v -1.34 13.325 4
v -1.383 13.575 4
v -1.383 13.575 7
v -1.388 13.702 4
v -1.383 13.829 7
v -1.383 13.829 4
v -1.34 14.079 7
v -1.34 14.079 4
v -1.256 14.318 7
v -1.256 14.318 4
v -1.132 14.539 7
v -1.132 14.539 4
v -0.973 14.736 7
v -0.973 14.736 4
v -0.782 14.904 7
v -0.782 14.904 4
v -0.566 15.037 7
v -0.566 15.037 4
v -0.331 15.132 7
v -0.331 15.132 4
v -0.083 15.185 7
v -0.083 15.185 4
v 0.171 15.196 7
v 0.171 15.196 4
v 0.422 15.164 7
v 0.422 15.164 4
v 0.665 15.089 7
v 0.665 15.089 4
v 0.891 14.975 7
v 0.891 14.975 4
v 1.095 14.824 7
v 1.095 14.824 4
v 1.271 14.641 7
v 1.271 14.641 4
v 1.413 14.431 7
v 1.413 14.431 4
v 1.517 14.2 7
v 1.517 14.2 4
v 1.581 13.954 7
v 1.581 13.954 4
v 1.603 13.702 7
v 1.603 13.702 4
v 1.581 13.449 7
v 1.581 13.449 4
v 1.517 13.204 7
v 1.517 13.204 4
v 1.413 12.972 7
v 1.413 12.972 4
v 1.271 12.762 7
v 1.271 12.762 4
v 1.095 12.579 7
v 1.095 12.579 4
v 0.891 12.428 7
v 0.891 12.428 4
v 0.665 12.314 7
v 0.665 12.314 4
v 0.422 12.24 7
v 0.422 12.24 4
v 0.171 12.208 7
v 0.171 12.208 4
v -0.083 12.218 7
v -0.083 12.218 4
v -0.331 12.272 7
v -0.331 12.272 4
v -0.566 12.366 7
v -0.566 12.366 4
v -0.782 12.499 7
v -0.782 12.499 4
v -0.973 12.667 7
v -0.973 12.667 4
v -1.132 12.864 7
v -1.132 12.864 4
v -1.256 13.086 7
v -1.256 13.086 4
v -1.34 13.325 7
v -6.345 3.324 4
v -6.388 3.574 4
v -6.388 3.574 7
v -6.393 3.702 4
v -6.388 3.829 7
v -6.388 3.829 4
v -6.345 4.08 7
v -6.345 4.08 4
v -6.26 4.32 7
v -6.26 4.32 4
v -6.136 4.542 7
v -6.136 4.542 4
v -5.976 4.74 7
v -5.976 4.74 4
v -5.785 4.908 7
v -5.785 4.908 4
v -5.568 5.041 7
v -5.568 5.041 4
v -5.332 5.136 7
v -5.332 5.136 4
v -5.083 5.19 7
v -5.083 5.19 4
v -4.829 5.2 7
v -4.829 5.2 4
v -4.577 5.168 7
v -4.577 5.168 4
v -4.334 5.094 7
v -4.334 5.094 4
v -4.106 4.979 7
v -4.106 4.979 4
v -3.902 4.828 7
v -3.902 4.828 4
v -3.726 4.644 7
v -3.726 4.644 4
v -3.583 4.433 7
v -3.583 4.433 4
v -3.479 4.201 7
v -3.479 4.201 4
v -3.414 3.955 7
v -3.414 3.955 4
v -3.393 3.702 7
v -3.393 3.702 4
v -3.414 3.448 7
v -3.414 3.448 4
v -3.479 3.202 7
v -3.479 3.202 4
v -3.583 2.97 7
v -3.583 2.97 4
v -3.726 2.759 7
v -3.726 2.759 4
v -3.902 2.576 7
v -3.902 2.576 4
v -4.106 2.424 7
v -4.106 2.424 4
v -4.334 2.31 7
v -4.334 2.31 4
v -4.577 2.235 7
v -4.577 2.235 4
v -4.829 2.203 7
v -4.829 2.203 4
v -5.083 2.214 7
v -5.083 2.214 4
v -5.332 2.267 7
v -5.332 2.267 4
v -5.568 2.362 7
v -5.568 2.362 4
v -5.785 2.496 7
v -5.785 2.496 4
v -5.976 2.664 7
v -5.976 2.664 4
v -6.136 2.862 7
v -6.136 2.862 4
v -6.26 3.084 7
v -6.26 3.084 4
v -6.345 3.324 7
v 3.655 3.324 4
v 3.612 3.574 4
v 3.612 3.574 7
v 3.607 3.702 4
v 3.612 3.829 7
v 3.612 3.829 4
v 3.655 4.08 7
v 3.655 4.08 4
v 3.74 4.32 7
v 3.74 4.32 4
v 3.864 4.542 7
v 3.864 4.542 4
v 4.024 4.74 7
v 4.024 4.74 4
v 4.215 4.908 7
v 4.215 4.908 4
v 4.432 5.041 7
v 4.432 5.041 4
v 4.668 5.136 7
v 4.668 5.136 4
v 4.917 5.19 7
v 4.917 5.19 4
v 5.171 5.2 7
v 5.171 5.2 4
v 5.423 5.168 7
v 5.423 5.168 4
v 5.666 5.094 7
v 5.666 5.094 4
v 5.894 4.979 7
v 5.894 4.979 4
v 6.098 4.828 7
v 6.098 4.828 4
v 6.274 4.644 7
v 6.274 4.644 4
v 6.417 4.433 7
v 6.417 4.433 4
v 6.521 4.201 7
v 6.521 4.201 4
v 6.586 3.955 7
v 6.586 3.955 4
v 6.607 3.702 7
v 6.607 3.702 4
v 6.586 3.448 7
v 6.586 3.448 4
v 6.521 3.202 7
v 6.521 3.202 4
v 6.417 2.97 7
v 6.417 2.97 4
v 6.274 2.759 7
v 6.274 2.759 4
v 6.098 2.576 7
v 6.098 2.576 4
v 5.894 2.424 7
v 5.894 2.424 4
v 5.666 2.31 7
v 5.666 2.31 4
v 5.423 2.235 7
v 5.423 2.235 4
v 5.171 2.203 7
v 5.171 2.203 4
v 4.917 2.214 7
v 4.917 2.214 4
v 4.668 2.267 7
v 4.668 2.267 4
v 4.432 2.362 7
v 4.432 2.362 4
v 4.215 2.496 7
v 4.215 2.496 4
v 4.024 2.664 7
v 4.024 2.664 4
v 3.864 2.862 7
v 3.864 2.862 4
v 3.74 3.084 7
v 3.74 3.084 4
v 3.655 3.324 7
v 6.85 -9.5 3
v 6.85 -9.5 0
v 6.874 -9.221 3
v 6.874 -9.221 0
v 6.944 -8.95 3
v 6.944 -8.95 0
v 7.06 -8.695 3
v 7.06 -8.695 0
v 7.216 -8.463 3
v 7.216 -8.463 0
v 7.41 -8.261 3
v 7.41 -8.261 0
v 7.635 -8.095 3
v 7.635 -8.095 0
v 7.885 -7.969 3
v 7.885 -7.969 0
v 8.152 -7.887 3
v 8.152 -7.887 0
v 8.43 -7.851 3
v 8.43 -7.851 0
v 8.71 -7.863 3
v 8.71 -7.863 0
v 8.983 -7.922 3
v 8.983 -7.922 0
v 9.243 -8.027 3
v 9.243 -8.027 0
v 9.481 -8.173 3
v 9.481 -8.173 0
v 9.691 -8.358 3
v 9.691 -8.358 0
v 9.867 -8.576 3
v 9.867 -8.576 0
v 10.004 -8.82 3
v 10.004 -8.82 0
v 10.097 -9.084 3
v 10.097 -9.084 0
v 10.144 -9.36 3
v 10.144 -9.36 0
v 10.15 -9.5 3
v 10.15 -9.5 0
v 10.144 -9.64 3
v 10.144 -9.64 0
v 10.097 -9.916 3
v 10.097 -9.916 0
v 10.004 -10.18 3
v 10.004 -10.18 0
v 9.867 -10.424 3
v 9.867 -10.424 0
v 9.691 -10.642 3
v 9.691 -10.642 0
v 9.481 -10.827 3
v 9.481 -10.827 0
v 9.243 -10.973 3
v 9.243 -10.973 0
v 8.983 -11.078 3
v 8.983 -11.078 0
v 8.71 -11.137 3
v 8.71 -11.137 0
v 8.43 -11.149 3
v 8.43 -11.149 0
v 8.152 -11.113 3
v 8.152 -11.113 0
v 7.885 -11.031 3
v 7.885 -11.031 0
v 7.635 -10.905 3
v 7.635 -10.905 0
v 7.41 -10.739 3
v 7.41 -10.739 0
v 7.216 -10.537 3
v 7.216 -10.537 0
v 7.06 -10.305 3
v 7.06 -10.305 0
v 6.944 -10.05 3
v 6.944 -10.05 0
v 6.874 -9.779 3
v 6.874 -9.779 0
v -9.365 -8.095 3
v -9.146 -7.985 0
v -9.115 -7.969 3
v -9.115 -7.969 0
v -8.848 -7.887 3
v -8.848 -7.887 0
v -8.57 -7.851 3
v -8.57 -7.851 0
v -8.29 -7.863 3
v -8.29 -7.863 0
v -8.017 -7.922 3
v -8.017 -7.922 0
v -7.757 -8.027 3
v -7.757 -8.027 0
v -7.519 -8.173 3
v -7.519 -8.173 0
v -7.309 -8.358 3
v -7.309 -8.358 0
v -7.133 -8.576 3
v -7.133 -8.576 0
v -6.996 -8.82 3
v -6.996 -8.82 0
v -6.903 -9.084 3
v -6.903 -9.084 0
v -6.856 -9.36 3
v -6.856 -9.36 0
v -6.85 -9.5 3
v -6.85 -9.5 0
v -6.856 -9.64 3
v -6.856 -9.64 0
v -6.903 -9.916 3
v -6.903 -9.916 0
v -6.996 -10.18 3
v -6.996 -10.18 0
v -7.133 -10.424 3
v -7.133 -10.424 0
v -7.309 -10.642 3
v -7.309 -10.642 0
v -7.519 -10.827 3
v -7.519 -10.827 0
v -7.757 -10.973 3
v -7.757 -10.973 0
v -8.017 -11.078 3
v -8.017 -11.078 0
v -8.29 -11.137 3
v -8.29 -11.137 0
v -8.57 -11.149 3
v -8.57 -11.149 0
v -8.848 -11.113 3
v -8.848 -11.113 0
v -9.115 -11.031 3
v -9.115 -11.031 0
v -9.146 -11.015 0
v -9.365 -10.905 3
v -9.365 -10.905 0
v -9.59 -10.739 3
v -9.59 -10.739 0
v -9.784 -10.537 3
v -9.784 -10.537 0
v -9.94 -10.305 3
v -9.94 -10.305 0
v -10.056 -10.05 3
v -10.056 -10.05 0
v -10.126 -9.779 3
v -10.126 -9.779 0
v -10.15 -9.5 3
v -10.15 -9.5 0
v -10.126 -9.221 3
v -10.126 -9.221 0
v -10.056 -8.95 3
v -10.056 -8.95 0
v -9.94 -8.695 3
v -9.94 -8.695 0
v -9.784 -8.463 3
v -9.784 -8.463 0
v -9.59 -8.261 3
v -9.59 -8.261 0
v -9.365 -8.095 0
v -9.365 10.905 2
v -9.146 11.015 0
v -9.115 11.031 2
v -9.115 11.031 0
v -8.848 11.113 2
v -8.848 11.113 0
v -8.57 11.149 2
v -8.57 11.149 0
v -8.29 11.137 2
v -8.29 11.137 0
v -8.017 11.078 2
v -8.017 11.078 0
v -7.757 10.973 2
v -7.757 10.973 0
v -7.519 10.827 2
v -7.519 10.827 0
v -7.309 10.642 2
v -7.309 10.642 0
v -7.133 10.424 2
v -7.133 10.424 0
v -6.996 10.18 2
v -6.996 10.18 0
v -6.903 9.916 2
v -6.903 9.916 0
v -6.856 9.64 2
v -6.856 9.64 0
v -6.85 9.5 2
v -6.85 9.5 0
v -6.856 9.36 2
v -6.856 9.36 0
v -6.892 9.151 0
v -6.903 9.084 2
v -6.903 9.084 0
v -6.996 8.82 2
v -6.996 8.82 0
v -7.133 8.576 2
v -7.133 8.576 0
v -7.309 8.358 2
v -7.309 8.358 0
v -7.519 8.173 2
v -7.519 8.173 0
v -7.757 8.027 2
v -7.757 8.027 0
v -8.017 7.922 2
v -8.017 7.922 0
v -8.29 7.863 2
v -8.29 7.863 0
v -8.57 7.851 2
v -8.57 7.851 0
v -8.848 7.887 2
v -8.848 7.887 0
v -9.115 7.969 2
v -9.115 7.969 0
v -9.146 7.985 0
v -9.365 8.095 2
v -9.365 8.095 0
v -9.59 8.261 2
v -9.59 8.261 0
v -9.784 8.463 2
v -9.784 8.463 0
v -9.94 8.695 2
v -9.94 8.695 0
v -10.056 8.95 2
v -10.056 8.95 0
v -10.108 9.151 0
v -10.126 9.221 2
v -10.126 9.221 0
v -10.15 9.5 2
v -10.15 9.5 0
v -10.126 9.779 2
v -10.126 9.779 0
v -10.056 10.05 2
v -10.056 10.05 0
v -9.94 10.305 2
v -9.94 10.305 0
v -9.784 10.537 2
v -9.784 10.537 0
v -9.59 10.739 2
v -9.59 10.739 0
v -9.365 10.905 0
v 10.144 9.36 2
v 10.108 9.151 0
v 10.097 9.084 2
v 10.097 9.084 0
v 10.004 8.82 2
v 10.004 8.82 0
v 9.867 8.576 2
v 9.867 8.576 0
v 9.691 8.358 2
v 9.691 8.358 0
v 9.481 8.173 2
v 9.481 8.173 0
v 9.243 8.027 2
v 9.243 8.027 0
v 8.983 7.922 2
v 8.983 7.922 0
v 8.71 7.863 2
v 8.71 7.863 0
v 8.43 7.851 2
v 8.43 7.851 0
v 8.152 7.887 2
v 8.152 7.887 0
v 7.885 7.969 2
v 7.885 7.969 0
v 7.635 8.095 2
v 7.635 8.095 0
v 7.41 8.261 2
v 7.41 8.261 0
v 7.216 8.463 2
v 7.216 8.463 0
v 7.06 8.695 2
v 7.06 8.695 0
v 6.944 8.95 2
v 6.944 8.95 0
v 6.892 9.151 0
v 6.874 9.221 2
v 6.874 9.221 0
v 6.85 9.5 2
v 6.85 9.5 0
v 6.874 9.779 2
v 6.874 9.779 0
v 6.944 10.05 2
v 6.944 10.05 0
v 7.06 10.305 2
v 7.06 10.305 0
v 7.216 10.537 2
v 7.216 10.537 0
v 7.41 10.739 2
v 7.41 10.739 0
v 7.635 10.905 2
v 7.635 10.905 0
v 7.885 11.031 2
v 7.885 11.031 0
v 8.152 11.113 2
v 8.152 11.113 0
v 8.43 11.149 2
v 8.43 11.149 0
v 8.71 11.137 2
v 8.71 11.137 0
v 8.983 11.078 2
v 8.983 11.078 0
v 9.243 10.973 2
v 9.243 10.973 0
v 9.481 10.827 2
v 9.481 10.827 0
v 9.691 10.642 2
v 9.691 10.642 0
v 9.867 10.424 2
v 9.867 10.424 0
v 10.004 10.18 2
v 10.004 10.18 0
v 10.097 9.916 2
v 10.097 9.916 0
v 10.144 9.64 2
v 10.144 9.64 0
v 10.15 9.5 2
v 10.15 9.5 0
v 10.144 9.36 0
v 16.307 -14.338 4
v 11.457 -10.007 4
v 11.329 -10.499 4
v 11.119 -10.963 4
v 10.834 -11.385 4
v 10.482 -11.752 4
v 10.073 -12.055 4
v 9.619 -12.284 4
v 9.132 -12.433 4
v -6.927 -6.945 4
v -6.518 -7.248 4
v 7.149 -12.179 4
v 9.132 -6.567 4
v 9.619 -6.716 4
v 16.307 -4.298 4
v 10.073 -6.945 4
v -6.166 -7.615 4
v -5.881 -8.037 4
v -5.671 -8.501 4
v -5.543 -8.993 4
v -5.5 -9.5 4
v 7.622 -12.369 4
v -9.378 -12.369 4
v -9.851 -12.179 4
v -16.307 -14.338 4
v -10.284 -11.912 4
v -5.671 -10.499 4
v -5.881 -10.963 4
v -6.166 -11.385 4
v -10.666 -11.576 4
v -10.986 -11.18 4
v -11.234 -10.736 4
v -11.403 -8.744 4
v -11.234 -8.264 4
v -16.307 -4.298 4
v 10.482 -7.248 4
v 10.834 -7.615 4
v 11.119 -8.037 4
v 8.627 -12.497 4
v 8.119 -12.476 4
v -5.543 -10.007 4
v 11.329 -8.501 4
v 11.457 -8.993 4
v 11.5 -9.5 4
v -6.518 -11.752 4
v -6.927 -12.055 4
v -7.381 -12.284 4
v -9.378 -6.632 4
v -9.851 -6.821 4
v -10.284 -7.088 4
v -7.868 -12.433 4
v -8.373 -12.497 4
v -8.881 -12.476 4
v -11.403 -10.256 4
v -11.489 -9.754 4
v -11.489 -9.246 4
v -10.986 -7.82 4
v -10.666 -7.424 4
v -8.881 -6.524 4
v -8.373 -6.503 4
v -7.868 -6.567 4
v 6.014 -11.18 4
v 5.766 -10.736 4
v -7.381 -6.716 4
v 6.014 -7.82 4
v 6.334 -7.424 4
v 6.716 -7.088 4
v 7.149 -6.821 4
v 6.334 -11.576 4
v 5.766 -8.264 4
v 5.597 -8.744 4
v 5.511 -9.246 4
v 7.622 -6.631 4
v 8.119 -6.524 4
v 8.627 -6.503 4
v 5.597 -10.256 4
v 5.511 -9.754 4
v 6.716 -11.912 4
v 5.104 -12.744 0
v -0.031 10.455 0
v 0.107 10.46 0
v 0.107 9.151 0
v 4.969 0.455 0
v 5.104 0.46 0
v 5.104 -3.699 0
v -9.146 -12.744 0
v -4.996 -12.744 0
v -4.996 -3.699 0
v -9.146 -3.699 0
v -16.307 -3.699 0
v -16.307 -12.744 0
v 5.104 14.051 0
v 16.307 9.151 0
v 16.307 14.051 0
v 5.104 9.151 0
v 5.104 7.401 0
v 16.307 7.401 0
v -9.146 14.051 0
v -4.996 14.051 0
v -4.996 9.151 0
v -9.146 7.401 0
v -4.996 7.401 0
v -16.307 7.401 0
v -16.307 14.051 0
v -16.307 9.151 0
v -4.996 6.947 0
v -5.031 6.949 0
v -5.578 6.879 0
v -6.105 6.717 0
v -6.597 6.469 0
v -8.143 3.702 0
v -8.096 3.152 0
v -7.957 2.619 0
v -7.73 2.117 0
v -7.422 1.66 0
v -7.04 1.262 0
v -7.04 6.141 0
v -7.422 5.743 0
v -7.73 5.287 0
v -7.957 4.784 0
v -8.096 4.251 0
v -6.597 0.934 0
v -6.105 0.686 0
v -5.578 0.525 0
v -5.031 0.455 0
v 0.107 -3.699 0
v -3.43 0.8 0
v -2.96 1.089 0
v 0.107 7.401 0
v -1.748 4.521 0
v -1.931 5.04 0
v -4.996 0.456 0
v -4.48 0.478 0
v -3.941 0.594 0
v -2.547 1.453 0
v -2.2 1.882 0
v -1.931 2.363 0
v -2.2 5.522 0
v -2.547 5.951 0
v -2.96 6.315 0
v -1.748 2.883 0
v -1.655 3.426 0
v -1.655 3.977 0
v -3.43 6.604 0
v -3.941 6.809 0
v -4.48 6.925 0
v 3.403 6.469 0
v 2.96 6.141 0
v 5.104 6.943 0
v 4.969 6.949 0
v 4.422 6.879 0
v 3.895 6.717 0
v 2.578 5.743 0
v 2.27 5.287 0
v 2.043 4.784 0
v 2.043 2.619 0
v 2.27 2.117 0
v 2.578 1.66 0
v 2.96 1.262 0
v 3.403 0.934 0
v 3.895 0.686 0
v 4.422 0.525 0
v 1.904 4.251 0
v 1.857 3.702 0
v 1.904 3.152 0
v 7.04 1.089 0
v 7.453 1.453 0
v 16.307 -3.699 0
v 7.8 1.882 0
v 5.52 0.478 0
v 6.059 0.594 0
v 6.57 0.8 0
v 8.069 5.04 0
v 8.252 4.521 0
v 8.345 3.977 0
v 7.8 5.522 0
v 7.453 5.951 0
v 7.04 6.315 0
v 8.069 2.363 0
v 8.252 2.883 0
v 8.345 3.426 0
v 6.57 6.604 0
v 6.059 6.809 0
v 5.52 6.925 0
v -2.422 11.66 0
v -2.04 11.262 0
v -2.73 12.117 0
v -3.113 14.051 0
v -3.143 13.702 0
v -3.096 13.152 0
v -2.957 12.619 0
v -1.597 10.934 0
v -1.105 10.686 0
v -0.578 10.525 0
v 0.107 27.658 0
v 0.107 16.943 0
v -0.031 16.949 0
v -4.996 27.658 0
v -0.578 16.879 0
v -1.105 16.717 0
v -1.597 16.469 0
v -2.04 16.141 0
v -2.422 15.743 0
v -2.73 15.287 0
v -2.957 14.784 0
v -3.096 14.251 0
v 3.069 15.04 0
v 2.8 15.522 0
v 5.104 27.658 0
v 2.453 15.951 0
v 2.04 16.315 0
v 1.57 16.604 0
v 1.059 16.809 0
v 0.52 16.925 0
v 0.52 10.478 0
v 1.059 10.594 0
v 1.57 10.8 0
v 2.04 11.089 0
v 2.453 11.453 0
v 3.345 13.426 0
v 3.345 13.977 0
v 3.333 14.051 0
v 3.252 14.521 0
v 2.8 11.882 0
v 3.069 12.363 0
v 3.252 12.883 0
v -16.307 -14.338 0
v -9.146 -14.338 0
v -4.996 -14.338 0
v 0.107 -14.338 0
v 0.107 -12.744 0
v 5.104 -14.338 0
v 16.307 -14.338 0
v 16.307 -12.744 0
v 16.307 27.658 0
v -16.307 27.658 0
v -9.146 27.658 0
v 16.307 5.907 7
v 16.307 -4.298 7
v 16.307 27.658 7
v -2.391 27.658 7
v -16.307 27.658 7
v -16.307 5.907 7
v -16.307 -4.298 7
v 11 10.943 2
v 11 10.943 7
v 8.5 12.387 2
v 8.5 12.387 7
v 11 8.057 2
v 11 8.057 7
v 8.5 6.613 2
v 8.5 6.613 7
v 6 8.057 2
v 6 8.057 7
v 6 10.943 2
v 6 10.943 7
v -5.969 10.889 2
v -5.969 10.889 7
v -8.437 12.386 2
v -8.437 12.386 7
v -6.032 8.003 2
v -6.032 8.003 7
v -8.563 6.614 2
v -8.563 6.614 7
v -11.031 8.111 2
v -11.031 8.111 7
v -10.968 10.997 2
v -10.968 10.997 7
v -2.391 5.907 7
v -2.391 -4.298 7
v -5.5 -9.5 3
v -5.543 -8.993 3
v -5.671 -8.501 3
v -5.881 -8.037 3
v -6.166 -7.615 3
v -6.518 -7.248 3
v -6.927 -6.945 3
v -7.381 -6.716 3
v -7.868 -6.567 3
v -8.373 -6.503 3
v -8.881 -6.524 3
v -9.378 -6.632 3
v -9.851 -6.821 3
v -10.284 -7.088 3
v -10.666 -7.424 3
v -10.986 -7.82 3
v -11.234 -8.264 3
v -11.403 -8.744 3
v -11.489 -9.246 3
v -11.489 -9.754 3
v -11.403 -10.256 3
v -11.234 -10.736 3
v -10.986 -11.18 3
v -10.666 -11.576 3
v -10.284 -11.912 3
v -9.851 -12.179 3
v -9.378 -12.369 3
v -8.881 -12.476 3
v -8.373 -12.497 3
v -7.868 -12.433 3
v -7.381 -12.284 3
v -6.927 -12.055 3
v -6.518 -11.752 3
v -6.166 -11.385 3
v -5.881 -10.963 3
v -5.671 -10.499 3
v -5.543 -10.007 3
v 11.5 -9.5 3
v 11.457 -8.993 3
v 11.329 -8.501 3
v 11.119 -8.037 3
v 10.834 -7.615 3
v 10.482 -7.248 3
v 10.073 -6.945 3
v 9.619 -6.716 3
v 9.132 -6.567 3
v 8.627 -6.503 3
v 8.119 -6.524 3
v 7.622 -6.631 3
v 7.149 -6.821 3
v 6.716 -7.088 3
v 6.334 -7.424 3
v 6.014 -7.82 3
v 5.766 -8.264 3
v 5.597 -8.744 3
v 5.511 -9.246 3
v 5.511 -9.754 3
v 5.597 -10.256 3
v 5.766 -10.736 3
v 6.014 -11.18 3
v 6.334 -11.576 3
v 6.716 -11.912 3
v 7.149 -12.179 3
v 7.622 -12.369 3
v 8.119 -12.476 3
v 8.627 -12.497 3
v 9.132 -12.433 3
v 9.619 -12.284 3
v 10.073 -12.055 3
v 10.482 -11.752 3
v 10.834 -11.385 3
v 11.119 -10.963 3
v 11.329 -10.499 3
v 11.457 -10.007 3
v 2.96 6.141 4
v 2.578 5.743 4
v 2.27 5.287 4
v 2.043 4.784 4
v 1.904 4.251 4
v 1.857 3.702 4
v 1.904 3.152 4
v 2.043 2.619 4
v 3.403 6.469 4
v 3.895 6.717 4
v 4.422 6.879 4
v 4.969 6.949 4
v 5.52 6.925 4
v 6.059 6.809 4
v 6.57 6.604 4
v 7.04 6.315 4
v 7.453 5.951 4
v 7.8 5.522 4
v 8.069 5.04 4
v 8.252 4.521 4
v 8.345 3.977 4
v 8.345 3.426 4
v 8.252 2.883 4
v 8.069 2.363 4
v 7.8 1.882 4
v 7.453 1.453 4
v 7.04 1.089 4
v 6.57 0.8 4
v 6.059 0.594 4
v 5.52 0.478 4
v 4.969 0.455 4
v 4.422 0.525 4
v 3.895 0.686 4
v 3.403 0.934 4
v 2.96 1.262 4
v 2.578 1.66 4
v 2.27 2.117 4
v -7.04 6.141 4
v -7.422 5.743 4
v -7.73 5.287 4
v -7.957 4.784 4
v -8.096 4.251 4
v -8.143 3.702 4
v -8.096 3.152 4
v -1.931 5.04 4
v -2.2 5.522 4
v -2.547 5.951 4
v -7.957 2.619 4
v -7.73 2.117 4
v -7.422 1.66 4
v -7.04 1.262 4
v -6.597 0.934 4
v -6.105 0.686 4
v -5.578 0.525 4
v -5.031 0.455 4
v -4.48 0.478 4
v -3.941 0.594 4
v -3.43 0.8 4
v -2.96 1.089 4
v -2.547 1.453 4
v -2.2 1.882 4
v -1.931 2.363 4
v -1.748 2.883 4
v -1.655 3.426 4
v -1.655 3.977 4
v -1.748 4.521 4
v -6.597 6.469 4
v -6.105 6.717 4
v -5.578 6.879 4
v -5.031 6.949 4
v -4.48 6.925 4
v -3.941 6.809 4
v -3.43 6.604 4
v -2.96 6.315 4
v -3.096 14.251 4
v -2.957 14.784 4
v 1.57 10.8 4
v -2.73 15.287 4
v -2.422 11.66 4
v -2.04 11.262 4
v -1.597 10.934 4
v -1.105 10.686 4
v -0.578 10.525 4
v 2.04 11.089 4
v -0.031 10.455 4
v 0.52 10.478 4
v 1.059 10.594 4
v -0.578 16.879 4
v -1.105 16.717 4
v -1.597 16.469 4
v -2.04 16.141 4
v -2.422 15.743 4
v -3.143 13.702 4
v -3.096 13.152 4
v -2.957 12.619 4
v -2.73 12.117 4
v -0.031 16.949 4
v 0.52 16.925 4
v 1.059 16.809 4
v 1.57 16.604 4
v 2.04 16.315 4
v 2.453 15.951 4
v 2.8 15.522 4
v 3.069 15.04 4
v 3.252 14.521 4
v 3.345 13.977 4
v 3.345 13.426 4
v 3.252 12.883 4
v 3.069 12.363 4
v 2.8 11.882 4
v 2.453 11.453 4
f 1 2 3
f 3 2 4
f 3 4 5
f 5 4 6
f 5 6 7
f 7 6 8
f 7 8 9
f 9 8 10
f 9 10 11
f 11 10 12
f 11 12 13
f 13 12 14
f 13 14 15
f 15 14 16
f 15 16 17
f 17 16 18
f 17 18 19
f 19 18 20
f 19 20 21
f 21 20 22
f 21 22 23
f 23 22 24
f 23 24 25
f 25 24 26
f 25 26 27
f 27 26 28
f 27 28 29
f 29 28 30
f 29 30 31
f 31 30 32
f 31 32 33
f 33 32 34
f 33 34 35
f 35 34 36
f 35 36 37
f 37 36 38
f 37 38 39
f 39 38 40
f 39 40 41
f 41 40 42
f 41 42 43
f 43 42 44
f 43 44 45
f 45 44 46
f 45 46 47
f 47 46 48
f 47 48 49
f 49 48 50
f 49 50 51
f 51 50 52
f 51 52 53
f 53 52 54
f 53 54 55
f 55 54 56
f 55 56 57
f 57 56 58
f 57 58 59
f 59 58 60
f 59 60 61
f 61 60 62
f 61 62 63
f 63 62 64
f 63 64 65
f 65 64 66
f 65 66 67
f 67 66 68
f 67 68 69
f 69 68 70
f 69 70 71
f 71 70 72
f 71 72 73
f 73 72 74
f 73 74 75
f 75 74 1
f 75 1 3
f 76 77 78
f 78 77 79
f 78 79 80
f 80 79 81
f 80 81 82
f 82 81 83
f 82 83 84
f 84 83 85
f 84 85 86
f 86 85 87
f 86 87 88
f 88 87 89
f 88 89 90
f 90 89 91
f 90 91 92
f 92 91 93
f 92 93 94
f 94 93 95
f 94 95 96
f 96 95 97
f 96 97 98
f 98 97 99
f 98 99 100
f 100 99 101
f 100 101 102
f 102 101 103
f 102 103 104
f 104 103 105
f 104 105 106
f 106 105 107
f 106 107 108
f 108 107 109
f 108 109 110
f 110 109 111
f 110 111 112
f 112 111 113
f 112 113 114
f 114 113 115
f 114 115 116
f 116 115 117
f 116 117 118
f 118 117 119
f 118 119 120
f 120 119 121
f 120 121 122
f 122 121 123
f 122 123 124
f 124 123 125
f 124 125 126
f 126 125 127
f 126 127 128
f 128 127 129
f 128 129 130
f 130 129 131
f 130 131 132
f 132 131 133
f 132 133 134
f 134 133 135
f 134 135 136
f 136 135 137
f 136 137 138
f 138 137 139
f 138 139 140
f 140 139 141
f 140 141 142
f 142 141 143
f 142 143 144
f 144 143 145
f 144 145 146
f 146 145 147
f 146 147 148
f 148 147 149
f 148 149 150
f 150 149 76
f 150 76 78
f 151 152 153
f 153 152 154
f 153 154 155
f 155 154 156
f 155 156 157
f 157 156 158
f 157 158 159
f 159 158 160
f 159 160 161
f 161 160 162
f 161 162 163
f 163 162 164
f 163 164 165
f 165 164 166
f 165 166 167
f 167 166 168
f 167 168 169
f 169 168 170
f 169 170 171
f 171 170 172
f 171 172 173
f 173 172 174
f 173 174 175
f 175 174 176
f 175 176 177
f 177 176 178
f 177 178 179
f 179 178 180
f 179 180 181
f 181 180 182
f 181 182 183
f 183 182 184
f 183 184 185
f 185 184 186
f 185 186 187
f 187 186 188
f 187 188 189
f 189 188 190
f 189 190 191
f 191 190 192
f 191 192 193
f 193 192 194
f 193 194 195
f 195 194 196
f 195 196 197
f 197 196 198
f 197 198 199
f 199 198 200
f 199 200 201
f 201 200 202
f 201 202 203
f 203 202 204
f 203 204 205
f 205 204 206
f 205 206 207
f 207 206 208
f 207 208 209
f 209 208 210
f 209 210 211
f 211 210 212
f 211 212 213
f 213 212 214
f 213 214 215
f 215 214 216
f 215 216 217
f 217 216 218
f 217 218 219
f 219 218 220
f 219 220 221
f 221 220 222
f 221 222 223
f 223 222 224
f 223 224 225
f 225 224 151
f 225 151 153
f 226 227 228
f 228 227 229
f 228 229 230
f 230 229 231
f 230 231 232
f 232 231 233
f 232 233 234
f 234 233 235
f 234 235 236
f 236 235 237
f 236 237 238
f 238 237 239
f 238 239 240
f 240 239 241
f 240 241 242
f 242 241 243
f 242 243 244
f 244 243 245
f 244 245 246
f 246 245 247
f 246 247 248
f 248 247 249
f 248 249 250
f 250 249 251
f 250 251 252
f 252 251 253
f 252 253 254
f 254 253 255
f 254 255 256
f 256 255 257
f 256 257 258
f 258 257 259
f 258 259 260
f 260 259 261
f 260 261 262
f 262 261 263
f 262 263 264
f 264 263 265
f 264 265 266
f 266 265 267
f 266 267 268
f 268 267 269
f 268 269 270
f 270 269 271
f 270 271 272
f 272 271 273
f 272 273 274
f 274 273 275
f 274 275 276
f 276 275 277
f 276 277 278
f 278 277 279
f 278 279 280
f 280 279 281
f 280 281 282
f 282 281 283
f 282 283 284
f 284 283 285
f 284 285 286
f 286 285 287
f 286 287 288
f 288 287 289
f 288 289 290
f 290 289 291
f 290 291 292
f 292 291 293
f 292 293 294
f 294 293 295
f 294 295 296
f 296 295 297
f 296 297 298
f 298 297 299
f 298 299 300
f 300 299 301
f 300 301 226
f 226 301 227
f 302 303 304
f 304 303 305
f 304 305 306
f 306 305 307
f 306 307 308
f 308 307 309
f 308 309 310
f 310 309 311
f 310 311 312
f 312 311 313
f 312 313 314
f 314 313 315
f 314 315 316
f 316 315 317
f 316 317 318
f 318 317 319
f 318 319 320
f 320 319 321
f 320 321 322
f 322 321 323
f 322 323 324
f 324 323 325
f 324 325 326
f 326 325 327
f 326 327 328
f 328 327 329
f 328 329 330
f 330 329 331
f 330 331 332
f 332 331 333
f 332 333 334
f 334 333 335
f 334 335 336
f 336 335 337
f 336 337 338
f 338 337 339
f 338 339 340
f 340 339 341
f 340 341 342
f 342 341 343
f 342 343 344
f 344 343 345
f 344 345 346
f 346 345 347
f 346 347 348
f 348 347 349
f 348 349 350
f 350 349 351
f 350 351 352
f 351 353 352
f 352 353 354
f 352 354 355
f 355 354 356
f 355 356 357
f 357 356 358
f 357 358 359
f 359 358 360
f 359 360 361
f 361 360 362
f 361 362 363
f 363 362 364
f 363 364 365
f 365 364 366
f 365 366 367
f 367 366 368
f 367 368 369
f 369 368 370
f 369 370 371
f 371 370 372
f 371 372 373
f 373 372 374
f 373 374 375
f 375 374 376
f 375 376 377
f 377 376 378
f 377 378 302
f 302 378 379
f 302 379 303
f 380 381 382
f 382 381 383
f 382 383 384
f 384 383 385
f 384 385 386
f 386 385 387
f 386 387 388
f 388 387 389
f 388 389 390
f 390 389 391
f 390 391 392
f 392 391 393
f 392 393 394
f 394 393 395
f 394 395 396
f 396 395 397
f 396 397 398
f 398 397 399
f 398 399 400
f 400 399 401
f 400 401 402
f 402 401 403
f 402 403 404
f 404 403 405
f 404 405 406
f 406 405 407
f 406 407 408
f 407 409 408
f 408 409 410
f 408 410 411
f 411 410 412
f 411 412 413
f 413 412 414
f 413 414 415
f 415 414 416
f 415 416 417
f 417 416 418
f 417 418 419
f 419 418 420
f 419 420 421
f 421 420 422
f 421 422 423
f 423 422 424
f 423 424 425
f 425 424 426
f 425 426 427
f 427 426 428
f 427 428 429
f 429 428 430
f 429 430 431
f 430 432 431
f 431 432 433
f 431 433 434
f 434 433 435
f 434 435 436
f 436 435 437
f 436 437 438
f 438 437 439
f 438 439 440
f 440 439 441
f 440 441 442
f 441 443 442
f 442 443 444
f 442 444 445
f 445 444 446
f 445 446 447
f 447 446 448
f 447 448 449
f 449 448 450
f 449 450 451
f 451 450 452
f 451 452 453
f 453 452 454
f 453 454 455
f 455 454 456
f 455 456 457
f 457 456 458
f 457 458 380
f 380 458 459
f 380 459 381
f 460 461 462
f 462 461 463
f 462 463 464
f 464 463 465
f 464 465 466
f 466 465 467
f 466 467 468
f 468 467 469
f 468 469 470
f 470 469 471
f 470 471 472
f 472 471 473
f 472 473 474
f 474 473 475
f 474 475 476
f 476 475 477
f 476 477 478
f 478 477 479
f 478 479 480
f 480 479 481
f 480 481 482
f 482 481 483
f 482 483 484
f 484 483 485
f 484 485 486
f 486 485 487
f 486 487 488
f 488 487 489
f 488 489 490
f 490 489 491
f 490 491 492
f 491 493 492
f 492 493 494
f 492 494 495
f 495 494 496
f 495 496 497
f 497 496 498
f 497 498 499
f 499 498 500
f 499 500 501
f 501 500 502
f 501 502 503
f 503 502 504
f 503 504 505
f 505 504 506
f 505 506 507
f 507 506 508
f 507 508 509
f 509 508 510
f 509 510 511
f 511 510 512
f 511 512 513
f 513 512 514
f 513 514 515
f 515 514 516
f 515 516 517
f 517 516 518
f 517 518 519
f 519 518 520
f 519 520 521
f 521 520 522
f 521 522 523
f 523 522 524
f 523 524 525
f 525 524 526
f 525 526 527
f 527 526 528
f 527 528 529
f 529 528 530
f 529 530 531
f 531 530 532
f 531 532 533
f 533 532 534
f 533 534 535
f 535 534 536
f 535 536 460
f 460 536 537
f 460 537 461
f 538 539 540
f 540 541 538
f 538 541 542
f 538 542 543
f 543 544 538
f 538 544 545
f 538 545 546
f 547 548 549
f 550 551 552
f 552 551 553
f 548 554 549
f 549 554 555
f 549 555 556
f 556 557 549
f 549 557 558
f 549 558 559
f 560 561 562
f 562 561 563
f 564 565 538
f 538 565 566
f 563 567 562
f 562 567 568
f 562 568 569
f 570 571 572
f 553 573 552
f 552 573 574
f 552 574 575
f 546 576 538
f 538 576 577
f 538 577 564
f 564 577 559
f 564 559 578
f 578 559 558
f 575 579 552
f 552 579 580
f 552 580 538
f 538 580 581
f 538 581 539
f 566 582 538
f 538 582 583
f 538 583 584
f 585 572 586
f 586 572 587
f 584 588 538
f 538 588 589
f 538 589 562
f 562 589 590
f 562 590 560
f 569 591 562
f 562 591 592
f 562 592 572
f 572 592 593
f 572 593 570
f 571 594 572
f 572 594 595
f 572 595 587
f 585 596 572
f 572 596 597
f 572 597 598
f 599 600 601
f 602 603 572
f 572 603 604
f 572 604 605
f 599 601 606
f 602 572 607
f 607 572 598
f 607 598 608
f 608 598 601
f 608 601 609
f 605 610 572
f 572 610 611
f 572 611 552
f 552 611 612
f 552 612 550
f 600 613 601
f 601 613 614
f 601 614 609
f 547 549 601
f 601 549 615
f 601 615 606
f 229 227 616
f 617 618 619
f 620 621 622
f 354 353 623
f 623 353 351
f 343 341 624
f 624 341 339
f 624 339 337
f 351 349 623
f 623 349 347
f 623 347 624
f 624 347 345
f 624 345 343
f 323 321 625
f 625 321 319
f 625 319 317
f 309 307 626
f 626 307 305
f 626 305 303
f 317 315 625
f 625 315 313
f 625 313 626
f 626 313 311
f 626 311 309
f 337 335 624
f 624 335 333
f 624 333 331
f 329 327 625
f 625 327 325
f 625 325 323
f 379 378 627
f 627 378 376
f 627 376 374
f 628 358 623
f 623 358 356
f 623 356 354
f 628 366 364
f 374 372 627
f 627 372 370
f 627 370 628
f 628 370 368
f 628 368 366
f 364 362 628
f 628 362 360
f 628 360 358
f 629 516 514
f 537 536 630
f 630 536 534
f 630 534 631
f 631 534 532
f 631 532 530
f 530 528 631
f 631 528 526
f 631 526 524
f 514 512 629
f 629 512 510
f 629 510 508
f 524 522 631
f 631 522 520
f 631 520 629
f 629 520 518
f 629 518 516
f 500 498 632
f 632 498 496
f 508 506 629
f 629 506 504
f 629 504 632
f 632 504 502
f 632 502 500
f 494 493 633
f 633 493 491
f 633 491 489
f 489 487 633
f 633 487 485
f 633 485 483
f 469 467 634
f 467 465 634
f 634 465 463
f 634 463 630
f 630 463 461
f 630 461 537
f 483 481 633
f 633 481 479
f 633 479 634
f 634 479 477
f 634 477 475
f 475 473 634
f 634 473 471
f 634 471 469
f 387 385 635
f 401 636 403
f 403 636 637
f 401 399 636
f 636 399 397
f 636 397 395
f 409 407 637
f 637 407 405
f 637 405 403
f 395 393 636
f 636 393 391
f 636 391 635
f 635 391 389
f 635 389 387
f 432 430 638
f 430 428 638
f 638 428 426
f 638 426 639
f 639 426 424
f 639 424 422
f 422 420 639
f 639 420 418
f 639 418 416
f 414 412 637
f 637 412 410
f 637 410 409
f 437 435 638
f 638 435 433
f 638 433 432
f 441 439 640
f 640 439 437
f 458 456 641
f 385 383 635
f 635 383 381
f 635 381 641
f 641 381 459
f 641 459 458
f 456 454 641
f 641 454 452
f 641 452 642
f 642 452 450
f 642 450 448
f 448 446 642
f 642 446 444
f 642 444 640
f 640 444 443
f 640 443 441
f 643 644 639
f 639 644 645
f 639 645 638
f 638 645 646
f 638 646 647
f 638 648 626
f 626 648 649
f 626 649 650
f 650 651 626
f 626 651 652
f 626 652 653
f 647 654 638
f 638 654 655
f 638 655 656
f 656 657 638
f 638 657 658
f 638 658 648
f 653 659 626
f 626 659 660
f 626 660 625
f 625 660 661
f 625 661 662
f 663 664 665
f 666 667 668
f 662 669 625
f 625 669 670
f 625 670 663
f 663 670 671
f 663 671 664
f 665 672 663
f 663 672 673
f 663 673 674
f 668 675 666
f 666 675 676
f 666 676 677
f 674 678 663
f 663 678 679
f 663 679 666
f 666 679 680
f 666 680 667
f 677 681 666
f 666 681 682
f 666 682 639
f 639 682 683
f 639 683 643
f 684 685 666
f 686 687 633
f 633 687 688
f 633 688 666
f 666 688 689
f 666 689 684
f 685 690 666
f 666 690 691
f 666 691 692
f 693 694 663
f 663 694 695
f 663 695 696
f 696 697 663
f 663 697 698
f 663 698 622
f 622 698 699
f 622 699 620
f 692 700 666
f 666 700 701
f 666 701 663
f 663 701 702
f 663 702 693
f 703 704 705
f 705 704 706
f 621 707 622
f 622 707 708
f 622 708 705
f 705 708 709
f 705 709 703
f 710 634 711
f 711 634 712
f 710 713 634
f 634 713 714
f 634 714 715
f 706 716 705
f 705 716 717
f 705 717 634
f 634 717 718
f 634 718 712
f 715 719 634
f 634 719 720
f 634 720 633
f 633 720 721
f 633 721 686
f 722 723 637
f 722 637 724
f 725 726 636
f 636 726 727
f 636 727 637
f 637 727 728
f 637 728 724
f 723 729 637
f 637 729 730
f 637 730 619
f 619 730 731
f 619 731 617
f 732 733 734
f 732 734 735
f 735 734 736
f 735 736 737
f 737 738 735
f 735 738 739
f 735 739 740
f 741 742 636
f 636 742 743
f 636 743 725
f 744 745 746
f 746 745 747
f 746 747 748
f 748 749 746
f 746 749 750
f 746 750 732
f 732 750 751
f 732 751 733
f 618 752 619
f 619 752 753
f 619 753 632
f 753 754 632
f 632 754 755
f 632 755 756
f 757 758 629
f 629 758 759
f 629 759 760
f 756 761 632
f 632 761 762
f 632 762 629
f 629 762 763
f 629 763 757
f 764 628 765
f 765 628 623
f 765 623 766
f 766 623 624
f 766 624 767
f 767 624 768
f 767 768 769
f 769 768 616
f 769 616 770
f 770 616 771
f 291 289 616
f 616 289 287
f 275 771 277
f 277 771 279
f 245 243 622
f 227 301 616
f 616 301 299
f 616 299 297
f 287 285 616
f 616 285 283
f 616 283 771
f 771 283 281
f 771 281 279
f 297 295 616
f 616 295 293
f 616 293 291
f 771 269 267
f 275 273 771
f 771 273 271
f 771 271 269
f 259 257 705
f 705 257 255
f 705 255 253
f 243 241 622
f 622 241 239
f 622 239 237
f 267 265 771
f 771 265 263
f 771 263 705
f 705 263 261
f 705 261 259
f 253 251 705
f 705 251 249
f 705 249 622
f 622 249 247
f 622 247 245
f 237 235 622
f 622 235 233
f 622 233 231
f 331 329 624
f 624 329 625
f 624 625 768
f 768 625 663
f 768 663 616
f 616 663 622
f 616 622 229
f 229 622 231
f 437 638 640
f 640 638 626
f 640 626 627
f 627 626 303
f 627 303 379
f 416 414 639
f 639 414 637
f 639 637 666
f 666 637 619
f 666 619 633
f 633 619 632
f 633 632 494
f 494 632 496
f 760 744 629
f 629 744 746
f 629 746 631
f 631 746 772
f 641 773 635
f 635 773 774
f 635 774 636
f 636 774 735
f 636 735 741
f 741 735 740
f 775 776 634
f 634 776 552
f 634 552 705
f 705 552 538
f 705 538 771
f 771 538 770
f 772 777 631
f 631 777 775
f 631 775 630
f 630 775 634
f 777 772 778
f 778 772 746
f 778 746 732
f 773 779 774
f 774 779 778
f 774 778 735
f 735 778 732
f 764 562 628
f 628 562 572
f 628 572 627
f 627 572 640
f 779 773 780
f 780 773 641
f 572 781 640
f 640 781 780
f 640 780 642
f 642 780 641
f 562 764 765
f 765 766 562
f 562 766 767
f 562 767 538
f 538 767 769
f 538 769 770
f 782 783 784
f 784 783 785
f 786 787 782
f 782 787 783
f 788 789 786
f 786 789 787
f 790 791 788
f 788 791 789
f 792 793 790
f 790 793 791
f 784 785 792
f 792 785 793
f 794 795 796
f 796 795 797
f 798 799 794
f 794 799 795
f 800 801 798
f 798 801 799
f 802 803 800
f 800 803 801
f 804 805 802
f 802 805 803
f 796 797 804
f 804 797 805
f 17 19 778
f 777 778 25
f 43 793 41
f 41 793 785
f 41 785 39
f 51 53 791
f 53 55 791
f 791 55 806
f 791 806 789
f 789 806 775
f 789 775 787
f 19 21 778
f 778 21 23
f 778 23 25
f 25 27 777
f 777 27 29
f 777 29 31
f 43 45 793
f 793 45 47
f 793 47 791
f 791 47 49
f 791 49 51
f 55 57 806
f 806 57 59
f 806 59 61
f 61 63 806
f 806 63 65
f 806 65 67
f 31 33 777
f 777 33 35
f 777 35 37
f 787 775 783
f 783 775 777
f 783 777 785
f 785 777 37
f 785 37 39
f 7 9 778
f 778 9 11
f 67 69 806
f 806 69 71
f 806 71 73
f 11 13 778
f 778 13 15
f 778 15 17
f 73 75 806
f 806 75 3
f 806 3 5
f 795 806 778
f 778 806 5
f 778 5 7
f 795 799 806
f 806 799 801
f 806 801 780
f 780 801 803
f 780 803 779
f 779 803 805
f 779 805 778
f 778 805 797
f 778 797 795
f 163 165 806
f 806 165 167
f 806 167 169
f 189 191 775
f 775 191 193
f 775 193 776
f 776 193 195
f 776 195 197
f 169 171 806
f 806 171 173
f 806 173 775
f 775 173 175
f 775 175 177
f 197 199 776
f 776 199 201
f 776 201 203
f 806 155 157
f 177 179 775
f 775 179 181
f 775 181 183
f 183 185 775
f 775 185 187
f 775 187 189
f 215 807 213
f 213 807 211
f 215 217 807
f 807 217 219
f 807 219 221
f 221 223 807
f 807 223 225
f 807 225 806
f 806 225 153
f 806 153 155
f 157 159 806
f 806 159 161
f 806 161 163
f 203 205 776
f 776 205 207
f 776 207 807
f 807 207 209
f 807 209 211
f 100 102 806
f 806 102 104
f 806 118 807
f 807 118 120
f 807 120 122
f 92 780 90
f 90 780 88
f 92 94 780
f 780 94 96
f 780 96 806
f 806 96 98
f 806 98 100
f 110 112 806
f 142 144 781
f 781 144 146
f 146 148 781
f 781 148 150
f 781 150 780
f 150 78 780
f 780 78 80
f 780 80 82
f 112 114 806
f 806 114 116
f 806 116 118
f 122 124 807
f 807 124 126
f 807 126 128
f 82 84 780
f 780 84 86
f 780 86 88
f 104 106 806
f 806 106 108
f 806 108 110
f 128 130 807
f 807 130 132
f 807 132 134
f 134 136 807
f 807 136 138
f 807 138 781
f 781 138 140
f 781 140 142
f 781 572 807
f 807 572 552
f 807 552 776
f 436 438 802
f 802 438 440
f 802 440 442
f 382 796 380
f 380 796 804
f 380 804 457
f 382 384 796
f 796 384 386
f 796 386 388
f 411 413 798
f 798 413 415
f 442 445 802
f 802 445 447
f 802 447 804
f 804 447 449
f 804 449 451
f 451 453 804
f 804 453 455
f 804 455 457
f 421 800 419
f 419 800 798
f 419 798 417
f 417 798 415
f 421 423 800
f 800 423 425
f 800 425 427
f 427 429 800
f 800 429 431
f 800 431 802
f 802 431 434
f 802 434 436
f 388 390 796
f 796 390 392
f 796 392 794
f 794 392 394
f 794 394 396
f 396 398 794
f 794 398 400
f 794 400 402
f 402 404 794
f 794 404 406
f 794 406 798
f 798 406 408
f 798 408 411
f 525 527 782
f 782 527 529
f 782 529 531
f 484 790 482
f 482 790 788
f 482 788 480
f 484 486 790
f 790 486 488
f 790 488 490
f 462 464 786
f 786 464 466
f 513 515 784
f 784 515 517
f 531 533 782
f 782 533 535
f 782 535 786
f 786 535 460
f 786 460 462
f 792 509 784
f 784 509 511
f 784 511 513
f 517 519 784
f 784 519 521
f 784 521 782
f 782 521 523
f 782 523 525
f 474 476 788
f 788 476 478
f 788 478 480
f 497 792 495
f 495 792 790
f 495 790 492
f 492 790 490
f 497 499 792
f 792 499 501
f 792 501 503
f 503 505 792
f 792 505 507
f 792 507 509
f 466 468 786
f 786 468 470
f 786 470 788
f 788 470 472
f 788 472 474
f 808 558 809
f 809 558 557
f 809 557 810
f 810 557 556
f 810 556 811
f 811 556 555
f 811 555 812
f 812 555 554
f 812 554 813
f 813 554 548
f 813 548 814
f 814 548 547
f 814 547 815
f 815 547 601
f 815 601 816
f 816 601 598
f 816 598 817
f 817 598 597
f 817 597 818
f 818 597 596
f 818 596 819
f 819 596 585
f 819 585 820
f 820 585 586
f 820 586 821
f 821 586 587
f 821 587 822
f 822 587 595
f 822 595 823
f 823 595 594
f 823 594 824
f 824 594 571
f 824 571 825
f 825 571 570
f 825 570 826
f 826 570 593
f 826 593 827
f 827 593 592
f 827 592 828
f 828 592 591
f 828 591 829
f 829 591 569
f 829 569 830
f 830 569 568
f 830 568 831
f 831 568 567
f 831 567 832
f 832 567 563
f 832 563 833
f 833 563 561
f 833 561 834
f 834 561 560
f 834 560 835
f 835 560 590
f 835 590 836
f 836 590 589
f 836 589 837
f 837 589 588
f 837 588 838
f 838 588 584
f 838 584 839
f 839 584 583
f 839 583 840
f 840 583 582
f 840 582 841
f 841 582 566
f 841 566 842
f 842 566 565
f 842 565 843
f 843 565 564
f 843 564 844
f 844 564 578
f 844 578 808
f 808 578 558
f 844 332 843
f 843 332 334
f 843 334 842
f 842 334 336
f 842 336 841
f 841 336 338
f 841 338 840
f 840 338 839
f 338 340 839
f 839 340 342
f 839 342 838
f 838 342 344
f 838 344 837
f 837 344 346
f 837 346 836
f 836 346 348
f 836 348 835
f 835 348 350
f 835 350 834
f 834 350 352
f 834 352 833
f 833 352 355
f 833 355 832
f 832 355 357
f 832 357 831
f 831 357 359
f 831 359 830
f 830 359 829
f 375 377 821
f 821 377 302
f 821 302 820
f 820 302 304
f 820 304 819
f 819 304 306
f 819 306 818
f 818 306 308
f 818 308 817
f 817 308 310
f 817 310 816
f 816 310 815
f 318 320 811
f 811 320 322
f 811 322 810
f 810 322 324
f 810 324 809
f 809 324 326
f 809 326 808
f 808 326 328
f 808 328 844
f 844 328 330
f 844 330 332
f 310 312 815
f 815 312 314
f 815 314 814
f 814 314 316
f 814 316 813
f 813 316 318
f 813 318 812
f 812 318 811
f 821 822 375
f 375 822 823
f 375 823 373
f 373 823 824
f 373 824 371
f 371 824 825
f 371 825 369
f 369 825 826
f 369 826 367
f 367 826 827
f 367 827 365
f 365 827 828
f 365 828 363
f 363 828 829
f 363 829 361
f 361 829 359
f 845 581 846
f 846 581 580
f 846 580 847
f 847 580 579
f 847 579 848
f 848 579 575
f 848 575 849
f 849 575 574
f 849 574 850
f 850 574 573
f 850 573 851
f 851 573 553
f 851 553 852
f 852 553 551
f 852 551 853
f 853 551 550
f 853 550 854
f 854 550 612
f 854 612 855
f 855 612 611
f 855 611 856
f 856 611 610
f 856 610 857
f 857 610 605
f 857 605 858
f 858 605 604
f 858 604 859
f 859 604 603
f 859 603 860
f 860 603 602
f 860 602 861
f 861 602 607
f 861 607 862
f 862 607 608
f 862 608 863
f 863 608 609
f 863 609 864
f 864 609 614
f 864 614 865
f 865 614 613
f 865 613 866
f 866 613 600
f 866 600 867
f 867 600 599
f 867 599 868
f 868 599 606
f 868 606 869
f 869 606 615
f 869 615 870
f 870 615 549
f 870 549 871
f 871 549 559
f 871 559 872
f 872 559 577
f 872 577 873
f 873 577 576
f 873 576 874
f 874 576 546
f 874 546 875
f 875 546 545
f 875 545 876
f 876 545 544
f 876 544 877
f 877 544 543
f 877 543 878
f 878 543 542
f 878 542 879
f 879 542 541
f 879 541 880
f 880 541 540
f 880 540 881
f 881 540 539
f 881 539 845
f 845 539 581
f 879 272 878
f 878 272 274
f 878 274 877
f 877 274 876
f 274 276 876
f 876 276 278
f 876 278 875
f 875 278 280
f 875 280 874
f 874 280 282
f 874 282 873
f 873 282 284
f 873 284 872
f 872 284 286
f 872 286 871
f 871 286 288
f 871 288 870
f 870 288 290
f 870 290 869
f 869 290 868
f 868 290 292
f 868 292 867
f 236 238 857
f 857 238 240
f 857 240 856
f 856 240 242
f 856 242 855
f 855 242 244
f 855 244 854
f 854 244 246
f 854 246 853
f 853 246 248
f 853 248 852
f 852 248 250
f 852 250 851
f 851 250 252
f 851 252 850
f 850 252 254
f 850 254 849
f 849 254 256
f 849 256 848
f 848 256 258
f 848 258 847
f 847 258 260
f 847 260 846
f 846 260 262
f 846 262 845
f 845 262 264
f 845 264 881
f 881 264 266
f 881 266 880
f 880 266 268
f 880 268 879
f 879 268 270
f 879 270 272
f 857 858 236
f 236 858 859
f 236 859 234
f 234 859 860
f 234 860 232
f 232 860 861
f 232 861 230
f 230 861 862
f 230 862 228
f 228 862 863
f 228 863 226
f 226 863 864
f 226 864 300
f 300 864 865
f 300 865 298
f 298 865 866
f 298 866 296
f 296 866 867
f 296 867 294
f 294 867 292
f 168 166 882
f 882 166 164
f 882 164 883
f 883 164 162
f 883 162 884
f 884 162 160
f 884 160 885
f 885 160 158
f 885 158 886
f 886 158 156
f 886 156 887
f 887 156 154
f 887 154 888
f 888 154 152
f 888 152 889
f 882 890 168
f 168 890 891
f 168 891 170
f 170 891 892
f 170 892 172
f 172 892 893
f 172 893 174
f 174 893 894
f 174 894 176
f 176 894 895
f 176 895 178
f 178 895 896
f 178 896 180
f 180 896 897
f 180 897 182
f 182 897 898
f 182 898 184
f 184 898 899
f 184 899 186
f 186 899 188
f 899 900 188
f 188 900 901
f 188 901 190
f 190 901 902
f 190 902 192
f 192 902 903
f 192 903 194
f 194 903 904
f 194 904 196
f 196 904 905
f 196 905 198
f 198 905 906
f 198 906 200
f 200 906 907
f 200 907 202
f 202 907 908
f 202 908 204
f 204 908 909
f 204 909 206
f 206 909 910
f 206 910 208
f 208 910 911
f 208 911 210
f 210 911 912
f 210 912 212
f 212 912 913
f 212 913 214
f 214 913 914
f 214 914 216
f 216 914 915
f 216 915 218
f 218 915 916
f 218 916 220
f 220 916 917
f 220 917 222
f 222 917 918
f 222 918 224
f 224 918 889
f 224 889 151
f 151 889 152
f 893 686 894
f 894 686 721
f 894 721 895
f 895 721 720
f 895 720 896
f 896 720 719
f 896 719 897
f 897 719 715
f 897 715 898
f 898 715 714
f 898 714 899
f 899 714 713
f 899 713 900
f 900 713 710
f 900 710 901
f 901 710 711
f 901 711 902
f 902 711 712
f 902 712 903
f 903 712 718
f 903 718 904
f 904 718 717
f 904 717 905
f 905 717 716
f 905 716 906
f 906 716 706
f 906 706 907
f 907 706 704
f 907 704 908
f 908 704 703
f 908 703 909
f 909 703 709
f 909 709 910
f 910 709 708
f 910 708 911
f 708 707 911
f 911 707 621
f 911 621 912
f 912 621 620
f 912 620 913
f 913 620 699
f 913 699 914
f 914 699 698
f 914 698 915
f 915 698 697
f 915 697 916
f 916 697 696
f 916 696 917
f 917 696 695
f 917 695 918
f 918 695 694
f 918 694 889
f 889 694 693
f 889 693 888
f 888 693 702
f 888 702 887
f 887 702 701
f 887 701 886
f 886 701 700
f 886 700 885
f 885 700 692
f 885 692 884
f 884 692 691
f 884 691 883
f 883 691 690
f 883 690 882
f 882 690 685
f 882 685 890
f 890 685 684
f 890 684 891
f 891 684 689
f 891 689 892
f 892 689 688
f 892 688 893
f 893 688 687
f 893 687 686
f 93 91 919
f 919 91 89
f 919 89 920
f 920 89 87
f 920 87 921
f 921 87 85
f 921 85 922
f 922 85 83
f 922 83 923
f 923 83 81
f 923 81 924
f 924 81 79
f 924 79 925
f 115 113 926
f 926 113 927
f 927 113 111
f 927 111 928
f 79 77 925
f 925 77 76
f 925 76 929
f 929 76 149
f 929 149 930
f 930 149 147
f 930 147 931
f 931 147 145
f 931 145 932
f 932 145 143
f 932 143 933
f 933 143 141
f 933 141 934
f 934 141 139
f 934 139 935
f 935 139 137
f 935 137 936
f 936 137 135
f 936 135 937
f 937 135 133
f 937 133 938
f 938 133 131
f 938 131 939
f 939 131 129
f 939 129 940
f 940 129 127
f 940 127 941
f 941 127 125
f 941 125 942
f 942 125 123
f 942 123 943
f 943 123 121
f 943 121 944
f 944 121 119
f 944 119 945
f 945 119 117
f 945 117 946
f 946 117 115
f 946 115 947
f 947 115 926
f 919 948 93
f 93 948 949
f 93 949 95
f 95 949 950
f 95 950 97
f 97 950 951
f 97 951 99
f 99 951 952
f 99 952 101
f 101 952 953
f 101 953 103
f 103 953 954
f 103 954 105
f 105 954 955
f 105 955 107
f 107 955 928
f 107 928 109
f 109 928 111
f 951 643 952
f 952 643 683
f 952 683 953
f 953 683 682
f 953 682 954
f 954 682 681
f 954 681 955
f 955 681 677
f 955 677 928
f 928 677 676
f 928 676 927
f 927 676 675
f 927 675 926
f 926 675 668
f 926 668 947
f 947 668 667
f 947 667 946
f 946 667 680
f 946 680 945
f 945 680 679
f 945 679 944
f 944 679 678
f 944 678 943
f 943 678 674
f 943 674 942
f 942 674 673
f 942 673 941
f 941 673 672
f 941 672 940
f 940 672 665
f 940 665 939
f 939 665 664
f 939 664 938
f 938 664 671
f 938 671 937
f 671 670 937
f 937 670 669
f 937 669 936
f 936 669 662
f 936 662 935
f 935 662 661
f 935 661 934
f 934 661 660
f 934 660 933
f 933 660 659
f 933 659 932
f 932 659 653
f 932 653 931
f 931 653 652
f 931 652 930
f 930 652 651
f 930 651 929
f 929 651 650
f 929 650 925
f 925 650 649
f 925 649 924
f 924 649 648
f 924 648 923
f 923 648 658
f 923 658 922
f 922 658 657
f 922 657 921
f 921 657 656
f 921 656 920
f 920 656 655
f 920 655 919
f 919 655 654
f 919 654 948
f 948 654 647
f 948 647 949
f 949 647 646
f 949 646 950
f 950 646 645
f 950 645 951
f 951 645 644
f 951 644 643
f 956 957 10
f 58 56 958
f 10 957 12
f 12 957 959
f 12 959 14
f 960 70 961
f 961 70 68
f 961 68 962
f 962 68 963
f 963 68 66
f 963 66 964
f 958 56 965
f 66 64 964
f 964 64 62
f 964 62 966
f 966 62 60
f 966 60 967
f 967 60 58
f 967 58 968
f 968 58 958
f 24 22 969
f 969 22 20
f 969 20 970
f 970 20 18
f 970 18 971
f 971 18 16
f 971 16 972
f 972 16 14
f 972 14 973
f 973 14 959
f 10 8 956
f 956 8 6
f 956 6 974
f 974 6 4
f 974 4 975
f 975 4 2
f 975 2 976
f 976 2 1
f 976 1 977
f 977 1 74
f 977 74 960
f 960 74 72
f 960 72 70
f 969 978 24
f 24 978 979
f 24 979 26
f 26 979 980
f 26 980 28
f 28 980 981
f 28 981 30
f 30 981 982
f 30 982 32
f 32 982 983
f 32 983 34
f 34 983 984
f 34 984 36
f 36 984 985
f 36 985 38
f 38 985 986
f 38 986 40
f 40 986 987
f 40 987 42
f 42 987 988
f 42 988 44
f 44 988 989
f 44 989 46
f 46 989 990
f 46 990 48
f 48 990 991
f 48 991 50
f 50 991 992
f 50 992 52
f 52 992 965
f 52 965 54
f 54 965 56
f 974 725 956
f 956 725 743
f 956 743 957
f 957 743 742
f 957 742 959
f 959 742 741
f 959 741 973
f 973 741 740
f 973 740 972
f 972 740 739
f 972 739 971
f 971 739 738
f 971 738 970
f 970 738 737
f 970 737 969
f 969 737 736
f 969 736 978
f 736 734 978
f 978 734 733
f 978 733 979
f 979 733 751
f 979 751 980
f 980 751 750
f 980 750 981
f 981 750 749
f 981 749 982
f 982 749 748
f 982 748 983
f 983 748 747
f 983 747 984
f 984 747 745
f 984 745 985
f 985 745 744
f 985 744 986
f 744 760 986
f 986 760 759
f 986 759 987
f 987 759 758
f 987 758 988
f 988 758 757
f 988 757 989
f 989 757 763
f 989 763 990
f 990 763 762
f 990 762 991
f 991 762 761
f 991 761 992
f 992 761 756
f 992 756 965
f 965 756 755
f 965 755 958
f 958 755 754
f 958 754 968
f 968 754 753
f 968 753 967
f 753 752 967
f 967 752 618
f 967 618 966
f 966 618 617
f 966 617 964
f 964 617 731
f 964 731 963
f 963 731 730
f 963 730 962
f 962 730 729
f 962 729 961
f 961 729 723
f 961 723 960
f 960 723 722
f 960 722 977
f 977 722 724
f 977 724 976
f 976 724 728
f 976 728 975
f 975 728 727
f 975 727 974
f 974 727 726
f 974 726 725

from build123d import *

# Parameters (mm, degrees)
SKICA1_W                 = 32.614180818
SKICA1_H                 = 41.995577694
SKICA1_R                 = 1.649999753
SKICA1_R_2               = 1.649999979
SKICA1_R_3               = 1.649999826
SKICA1_R_4               = 1.650000122
P_IDAT_VYSUNUT_M1_DEPTH  = 4
ODEBRAT_VYSUNUT_M1_DEPTH = 3
SKICA3_W                 = 32.614180818
SKICA3_H                 = 31.955890059
P_IDAT_VYSUNUT_M2_DEPTH  = 3
SKICA4_R                 = 1.649999753
SKICA4_R_2               = 1.649999979
P_IDAT_VYSUNUT_M3_DEPTH  = 1
SKICA5_R                 = 3
ODEBRAT_VYSUNUT_M2_DEPTH = 1
SKICA6_R                 = 1.5
SKICA6_R_2               = 1.495454726
ODEBRAT_VYSUNUT_M3_DEPTH = 7
SKICA7_R                 = 3.25
ODEBRAT_VYSUNUT_M4_DEPTH = 4


with BuildPart() as part:
    # Skica1 → Přidat vysunutím1 (new body)
    with BuildSketch(Plane.XY):
        with Locations((0, 6.659801208)):
            Rectangle(SKICA1_W, SKICA1_H)
        with Locations((-8.49999961, 9.500000046)):
            Circle(SKICA1_R, mode=Mode.SUBTRACT)
        with Locations((8.499999866, 9.50000039)):
            Circle(SKICA1_R_2, mode=Mode.SUBTRACT)
        with Locations((8.500000308, -9.499999987)):
            Circle(SKICA1_R_3, mode=Mode.SUBTRACT)
        with Locations((-8.499999537, -9.500000426)):
            Circle(SKICA1_R_4, mode=Mode.SUBTRACT)
    extrude(amount=P_IDAT_VYSUNUT_M1_DEPTH)

    # Skica2 → Odebrat vysunutím1 (cut)
    with BuildSketch(Plane.XY.offset(4)):
        Polygon((-8.437315747, 12.386070743), (-10.968068219, 10.997321212), (-11.030752082, 8.111250516), (-8.562683473, 6.61392935), (-6.031931001, 8.002678881), (-5.969247138, 10.888749577), align=None)
        Polygon((8.499999866, 12.386751736), (5.999999866, 10.943376063), (5.999999866, 8.056624717), (8.499999866, 6.613249044), (10.999999866, 8.056624717), (10.999999866, 10.943376063), align=None)
    extrude(amount=-ODEBRAT_VYSUNUT_M1_DEPTH, mode=Mode.SUBTRACT)

    # Skica3 → Přidat vysunutím2 (add)
    with BuildSketch(Plane.XY.offset(4)):
        with Locations((0, 11.679645025)):
            Rectangle(SKICA3_W, SKICA3_H)
        Polygon((-8.437315747, 12.386070743), (-10.968068219, 10.997321212), (-11.030752082, 8.111250516), (-8.562683473, 6.61392935), (-6.031931001, 8.002678881), (-5.969247138, 10.888749577), align=None, mode=Mode.SUBTRACT)
        Polygon((10.999999866, 10.943376063), (8.499999866, 12.386751736), (5.999999866, 10.943376063), (5.999999866, 8.056624717), (8.499999866, 6.613249044), (10.999999866, 8.056624717), align=None, mode=Mode.SUBTRACT)
    extrude(amount=P_IDAT_VYSUNUT_M2_DEPTH)

    # Skica4 → Přidat vysunutím3 (add)
    # profile 1 of 2: a face of its own
    with BuildSketch(Plane.XY.offset(1)):
        Polygon((-5.969247138, 10.888749577), (-8.437315747, 12.386070743), (-10.968068219, 10.997321212), (-11.030752082, 8.111250516), (-8.562683473, 6.61392935), (-6.031931001, 8.002678881), align=None)
        with Locations((-8.49999961, 9.500000046)):
            Circle(SKICA4_R, mode=Mode.SUBTRACT)
    # profile 2 of 2: a face of its own
    with BuildSketch(Plane.XY.offset(1)):
        Polygon((10.999999866, 10.943376063), (8.499999866, 12.386751736), (5.999999866, 10.943376063), (5.999999866, 8.056624717), (8.499999866, 6.613249044), (10.999999866, 8.056624717), align=None)
        with Locations((8.499999866, 9.50000039)):
            Circle(SKICA4_R_2, mode=Mode.SUBTRACT)
    extrude(amount=P_IDAT_VYSUNUT_M3_DEPTH)

    # Skica5 → Odebrat vysunutím2 (cut)
    with BuildSketch(Plane.XY.offset(4)):
        with Locations((8.500000308, -9.499999987)):
            Circle(SKICA5_R)
        with Locations((-8.499999537, -9.500000426)):
            Circle(SKICA5_R)
    extrude(amount=-ODEBRAT_VYSUNUT_M2_DEPTH, mode=Mode.SUBTRACT)

    # Skica6 → Odebrat vysunutím3 (cut)
    with BuildSketch(Plane.XY.offset(7)):
        with Locations((5.107090409, 3.701699996)):
            Circle(SKICA6_R)
        with Locations((-4.892909591, 3.701699996)):
            Circle(SKICA6_R)
        with Locations((0.107090409, 13.701699996)):
            Circle(SKICA6_R_2)
    extrude(amount=-ODEBRAT_VYSUNUT_M3_DEPTH, mode=Mode.SUBTRACT)

    # Skica7 → Odebrat vysunutím4 (cut)
    with BuildSketch(Plane(origin=(0, 0, 0), x_dir=(-1, 0, 0), z_dir=(0, 0, -1))):
        with Locations((4.892909591, 3.701699996)):
            Circle(SKICA7_R)
        with Locations((-5.107090409, 3.701699996)):
            Circle(SKICA7_R)
        with Locations((-0.107090409, 13.701699996)):
            Circle(SKICA7_R)
    extrude(amount=-ODEBRAT_VYSUNUT_M4_DEPTH, mode=Mode.SUBTRACT)


solid = part.part
